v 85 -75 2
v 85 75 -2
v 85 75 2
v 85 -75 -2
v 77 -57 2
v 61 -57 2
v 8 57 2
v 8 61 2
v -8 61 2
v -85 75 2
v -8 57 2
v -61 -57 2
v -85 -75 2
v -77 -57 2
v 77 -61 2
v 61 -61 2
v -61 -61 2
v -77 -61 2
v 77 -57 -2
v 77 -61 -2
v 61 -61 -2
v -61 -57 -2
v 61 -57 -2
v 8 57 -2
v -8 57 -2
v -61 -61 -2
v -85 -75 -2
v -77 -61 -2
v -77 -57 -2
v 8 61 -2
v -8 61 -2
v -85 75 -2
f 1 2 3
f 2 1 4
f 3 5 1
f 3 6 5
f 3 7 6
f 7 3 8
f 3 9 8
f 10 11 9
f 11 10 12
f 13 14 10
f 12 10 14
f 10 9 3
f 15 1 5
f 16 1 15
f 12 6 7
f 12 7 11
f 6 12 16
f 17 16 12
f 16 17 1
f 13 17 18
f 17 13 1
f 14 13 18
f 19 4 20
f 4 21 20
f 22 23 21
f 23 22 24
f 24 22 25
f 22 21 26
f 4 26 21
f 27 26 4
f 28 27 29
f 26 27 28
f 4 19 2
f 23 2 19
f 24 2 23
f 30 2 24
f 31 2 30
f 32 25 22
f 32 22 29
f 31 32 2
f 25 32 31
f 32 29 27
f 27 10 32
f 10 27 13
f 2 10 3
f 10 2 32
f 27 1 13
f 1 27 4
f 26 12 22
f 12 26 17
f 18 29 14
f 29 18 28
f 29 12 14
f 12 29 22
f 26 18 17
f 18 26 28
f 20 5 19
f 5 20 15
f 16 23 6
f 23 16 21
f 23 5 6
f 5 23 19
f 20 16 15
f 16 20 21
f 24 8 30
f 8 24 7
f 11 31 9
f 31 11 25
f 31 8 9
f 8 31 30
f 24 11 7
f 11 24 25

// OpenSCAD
// ========================================
// a 17 x 15 x 0.4 cm plate with three 1.6 x 0.4 cm slots
// NeuroCAD canonical IR; dimensions are millimetres
// ========================================
$fn = 48;

difference() {
  cube(size=[170, 150, 4], center=true);
  translate([-69, -59, 0]) {
    cube(size=[16, 4, 6], center=true);
  }
  translate([69, -59, 0]) {
    cube(size=[16, 4, 6], center=true);
  }
  translate([0, 59, 0]) {
    cube(size=[16, 4, 6], center=true);
  }
}
